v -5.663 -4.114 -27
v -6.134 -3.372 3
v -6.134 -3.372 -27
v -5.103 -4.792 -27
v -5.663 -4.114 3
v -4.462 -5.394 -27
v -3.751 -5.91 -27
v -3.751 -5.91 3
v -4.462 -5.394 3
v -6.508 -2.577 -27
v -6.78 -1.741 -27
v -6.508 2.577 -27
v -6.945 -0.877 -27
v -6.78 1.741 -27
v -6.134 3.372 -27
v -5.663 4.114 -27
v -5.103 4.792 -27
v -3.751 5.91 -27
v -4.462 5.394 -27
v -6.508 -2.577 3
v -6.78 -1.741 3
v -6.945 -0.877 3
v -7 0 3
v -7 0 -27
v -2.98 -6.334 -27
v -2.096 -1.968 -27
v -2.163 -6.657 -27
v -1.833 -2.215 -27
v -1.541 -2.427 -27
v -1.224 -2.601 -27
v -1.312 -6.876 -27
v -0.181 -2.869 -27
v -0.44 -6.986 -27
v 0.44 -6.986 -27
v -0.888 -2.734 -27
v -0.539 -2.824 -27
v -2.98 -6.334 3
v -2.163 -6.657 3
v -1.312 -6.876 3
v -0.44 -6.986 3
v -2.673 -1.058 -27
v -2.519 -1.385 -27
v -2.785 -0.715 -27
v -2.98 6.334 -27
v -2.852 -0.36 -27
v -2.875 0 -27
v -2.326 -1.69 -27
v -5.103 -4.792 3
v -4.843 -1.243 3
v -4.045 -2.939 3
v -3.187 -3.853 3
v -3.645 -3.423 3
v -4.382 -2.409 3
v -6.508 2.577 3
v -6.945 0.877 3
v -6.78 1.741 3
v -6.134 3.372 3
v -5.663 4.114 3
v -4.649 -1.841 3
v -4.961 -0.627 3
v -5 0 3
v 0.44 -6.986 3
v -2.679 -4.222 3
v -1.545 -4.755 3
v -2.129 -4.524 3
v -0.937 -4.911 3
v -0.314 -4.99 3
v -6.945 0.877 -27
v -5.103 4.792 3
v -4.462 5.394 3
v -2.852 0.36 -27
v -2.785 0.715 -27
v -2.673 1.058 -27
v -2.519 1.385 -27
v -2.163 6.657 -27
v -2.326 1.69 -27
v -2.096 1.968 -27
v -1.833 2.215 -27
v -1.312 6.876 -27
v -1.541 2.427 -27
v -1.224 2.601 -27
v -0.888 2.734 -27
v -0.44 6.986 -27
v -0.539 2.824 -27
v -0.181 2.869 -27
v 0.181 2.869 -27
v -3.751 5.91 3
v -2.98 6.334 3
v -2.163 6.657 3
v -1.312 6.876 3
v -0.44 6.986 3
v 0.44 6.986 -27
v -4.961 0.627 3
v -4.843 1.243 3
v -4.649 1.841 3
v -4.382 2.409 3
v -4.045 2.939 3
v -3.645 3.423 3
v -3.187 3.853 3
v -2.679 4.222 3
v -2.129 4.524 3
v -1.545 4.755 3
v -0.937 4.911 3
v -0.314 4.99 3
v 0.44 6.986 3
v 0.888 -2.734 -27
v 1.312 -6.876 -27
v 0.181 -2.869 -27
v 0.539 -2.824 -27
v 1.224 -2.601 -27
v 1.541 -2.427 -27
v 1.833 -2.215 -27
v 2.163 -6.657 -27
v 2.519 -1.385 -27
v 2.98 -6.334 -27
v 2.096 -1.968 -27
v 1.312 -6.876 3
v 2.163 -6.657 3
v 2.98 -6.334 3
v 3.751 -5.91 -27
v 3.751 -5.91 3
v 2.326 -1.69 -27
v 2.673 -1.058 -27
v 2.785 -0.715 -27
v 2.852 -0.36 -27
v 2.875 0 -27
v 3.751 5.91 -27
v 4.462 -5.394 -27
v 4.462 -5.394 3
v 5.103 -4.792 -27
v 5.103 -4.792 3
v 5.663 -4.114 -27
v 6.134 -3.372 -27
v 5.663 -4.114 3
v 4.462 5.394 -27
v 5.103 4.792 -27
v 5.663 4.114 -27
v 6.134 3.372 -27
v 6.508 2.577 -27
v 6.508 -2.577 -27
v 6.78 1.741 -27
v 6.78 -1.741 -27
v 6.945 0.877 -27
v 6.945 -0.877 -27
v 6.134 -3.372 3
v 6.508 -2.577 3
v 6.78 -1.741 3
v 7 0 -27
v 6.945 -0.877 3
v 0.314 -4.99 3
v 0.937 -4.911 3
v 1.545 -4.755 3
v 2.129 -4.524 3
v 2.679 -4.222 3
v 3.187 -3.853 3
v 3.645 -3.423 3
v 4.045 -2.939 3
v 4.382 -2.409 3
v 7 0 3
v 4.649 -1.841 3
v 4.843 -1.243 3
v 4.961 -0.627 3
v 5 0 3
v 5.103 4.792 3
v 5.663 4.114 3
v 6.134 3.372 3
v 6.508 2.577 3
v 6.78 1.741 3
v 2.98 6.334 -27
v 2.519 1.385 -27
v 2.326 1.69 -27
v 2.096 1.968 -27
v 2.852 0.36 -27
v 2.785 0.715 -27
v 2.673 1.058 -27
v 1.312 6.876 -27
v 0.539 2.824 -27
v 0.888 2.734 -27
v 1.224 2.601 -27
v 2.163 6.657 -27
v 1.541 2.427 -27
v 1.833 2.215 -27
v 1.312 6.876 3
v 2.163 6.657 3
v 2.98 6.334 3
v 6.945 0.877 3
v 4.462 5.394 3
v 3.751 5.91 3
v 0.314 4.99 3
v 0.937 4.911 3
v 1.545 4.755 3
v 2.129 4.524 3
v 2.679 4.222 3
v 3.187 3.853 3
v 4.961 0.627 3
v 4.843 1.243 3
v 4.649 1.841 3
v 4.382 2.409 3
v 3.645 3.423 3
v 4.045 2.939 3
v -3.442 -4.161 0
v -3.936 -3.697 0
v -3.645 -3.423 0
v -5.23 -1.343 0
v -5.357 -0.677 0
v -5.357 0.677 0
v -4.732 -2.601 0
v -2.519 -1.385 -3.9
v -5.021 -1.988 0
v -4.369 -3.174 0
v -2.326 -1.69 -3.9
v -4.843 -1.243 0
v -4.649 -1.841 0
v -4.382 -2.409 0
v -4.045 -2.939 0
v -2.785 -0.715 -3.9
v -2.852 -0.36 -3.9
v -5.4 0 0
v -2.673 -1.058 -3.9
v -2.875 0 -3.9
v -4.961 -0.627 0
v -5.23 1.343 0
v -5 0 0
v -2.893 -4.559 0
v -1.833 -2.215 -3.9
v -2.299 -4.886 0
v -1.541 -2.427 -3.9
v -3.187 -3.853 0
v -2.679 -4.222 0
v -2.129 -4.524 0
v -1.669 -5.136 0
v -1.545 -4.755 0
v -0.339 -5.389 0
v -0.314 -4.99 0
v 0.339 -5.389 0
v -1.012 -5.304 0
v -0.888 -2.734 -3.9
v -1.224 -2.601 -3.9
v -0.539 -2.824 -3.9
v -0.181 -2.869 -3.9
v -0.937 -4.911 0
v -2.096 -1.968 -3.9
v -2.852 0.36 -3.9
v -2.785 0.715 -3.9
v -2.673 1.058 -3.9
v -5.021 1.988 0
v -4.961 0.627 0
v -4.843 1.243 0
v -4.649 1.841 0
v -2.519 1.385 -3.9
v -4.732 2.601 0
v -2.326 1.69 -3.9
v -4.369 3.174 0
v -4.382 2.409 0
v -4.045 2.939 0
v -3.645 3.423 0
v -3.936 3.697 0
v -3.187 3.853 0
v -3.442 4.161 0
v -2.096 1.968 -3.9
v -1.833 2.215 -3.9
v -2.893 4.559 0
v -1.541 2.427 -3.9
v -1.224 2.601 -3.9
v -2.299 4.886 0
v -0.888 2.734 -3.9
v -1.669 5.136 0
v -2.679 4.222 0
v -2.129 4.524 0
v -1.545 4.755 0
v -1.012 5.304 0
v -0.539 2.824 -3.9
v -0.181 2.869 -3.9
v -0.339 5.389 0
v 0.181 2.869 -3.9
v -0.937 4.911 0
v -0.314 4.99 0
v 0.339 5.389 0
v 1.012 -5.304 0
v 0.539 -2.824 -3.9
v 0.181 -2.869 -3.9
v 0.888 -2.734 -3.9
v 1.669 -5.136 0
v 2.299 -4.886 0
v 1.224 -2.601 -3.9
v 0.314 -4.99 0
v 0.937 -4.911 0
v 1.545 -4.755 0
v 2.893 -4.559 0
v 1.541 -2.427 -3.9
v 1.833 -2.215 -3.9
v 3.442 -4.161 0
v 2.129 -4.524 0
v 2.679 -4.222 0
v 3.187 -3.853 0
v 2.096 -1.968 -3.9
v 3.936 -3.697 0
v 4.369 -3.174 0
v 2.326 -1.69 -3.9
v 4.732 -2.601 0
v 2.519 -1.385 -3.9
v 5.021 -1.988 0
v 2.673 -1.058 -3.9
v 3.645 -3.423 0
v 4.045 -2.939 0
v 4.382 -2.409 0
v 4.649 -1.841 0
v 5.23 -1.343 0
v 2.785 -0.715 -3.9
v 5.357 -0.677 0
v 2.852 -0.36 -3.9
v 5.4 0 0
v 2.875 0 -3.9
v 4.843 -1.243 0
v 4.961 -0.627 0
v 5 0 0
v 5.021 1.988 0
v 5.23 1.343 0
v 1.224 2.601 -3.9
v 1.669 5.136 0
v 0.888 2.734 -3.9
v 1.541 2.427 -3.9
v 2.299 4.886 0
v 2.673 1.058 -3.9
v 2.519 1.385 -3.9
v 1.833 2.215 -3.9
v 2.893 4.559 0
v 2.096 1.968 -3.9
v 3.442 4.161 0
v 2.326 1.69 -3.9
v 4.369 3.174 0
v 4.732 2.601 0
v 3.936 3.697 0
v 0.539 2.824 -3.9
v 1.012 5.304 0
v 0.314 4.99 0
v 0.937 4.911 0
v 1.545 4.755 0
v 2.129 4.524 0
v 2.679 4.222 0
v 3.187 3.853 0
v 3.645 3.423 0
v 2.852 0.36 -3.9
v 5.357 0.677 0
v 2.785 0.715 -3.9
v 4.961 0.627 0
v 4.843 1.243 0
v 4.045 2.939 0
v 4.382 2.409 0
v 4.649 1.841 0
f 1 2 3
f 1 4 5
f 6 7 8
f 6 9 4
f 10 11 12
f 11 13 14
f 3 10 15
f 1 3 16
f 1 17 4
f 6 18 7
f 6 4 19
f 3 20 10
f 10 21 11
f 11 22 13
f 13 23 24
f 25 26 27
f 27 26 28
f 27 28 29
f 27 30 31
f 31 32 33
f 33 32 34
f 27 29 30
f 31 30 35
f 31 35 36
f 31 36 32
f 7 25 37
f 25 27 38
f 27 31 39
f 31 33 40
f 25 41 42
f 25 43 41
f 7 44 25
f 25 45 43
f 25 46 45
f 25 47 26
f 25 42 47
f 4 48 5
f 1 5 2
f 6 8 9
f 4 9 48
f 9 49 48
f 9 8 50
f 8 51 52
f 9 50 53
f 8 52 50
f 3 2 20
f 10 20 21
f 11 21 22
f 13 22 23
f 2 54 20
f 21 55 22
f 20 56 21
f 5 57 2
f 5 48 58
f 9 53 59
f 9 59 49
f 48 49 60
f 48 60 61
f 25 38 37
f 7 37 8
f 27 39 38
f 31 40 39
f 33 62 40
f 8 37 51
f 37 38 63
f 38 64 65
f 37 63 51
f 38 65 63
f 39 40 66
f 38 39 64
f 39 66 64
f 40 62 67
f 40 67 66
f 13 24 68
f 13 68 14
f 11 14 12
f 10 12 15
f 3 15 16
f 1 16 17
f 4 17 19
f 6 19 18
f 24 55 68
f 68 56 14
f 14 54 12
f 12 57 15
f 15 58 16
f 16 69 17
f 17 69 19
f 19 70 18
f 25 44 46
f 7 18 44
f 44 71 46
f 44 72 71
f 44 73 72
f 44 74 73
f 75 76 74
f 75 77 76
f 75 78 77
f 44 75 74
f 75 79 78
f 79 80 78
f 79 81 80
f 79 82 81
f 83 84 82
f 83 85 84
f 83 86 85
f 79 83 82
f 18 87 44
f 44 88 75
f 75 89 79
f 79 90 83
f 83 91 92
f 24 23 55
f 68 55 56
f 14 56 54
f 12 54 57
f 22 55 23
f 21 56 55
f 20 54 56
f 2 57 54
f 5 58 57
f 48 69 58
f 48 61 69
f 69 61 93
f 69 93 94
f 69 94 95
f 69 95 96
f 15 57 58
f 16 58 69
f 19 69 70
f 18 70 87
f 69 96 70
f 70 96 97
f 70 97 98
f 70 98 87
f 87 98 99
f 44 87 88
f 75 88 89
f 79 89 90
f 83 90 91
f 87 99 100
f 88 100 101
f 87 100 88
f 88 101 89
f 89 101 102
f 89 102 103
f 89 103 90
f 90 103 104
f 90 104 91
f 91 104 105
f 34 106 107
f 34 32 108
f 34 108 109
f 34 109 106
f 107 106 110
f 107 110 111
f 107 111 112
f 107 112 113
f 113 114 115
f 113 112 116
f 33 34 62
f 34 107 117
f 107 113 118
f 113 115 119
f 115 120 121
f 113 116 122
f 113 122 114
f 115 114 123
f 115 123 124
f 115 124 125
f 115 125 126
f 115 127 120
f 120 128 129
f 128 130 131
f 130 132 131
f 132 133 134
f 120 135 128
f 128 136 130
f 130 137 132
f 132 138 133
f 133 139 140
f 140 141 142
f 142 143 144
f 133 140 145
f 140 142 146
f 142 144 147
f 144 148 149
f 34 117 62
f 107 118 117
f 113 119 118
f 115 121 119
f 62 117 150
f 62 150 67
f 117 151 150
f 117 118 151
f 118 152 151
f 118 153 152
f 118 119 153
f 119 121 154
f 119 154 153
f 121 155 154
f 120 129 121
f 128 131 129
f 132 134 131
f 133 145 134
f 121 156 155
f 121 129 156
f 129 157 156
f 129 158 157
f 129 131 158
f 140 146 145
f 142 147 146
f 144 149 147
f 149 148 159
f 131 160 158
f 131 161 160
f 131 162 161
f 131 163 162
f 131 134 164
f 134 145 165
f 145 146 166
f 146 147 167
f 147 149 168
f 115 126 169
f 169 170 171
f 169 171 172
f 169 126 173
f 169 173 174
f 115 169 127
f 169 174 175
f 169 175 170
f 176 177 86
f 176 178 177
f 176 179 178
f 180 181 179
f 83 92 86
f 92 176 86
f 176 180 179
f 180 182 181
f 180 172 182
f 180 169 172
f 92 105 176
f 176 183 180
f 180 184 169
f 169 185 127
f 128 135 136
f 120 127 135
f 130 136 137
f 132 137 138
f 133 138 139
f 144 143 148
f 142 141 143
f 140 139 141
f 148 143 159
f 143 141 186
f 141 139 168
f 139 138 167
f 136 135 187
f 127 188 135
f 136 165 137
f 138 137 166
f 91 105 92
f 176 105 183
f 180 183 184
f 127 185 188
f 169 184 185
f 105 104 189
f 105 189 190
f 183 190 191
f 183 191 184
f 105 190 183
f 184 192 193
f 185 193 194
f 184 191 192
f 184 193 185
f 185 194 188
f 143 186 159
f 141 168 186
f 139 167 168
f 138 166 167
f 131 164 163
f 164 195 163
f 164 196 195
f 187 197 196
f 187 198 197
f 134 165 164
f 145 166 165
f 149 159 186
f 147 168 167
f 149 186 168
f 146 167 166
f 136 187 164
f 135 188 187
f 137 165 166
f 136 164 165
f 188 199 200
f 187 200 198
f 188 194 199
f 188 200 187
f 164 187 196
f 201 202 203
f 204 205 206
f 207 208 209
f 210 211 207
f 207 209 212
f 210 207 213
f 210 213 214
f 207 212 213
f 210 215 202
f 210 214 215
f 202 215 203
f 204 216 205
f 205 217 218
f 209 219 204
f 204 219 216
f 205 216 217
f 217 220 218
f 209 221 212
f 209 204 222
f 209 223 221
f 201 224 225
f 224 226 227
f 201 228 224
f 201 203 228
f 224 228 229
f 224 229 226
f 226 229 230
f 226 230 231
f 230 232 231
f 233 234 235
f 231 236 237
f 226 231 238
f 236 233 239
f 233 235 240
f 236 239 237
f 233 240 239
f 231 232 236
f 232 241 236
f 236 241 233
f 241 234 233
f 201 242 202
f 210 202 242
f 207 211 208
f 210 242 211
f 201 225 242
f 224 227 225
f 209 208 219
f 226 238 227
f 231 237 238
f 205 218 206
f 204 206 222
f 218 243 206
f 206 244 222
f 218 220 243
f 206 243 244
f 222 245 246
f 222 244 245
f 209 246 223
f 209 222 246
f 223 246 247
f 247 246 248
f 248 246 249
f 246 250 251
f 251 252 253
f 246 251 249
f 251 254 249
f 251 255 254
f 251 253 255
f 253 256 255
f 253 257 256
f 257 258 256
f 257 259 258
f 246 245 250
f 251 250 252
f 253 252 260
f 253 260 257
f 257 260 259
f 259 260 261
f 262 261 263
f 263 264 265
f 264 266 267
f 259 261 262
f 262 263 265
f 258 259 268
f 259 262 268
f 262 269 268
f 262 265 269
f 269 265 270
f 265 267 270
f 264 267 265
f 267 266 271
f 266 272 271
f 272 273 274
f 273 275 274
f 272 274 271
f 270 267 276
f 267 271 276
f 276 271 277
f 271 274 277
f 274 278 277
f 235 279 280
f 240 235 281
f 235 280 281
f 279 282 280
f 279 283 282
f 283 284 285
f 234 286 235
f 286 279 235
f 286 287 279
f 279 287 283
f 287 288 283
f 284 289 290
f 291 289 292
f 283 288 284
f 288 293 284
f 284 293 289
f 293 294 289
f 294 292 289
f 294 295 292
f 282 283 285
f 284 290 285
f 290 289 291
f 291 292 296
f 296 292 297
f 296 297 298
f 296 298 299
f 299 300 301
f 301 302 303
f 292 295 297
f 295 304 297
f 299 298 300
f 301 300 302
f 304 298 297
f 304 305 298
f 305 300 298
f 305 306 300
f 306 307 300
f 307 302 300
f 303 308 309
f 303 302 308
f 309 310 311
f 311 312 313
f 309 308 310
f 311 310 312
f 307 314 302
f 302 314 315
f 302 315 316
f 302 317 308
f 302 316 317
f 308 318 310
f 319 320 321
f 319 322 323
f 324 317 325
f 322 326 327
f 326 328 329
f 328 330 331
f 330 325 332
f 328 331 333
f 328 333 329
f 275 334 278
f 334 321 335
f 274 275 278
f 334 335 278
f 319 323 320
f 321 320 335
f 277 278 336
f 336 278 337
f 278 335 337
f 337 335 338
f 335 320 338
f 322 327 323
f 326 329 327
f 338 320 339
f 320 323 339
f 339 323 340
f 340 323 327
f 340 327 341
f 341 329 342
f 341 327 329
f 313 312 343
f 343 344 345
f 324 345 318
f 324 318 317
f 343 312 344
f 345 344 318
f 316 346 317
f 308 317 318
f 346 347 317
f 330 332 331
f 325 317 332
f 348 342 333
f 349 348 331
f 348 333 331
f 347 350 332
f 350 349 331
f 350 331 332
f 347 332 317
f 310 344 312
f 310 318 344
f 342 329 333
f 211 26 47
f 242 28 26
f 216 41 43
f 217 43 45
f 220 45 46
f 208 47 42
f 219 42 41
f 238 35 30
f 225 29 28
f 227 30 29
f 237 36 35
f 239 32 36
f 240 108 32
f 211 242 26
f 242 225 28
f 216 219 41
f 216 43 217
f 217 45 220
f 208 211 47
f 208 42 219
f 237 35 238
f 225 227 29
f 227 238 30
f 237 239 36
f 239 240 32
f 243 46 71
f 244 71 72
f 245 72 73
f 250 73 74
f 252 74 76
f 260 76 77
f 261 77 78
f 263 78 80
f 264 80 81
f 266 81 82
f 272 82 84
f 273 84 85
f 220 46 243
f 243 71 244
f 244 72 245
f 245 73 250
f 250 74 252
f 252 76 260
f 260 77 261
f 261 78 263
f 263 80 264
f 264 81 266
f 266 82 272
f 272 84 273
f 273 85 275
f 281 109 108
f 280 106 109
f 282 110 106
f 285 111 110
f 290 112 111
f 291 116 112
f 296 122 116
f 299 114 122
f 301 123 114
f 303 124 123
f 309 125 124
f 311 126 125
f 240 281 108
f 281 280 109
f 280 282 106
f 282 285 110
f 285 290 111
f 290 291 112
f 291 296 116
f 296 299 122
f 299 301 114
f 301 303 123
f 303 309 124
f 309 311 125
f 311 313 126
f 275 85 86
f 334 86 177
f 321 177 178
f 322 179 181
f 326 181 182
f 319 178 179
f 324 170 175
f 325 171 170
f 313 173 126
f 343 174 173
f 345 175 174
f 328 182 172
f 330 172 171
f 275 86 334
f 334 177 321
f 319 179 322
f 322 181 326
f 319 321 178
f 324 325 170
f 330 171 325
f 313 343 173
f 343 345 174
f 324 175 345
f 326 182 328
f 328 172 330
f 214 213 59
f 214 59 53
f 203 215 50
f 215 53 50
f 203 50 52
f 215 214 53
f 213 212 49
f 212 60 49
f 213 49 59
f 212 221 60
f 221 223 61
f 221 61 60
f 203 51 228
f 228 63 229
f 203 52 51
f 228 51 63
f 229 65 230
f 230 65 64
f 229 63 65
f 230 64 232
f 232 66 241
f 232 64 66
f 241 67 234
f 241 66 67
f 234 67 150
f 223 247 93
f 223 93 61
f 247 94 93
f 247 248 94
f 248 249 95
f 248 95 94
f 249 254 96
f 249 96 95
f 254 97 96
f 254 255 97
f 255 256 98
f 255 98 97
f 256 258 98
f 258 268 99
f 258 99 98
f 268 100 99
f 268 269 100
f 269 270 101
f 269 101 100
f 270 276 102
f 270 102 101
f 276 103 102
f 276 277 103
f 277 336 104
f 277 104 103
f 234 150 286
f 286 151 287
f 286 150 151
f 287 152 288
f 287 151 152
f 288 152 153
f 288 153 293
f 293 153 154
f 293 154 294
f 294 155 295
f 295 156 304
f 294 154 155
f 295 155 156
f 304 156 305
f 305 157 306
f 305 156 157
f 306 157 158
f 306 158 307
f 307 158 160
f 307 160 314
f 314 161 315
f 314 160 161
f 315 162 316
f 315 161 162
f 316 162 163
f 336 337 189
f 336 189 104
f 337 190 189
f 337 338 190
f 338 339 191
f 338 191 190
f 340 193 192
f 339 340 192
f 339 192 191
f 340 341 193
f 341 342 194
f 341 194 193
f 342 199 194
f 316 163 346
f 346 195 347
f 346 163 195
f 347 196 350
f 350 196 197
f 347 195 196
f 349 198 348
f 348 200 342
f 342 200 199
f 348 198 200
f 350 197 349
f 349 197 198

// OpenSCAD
$fn = 50;


difference() {
	union() {
		translate(v = [0, 0, -27.0000000000]) {
			cylinder(h = 30, r = 7.0000000000);
		}
		#translate(v = [0, 0, -30.0000000000]) {
			cylinder(h = 30, r = 2.8750000000);
		}
	}
	union() {
		translate(v = [0, 0, 0]) {
			rotate(a = [0, 0, 0]) {
				difference() {
					union() {
						translate(v = [0, 0, -30.0000000000]) {
							cylinder(h = 30, r = 2.6000000000);
						}
						translate(v = [0, 0, -3.9000000000]) {
							cylinder(h = 3.9000000000, r1 = 2.8750000000, r2 = 5.4000000000);
						}
						translate(v = [0, 0, -30.0000000000]) {
							cylinder(h = 30, r = 2.8750000000);
						}
						translate(v = [0, 0, -30.0000000000]) {
							cylinder(h = 30, r = 2.6000000000);
						}
					}
					union();
				}
			}
		}
		#cylinder(h = 3, r = 5.0000000000);
	}
}
